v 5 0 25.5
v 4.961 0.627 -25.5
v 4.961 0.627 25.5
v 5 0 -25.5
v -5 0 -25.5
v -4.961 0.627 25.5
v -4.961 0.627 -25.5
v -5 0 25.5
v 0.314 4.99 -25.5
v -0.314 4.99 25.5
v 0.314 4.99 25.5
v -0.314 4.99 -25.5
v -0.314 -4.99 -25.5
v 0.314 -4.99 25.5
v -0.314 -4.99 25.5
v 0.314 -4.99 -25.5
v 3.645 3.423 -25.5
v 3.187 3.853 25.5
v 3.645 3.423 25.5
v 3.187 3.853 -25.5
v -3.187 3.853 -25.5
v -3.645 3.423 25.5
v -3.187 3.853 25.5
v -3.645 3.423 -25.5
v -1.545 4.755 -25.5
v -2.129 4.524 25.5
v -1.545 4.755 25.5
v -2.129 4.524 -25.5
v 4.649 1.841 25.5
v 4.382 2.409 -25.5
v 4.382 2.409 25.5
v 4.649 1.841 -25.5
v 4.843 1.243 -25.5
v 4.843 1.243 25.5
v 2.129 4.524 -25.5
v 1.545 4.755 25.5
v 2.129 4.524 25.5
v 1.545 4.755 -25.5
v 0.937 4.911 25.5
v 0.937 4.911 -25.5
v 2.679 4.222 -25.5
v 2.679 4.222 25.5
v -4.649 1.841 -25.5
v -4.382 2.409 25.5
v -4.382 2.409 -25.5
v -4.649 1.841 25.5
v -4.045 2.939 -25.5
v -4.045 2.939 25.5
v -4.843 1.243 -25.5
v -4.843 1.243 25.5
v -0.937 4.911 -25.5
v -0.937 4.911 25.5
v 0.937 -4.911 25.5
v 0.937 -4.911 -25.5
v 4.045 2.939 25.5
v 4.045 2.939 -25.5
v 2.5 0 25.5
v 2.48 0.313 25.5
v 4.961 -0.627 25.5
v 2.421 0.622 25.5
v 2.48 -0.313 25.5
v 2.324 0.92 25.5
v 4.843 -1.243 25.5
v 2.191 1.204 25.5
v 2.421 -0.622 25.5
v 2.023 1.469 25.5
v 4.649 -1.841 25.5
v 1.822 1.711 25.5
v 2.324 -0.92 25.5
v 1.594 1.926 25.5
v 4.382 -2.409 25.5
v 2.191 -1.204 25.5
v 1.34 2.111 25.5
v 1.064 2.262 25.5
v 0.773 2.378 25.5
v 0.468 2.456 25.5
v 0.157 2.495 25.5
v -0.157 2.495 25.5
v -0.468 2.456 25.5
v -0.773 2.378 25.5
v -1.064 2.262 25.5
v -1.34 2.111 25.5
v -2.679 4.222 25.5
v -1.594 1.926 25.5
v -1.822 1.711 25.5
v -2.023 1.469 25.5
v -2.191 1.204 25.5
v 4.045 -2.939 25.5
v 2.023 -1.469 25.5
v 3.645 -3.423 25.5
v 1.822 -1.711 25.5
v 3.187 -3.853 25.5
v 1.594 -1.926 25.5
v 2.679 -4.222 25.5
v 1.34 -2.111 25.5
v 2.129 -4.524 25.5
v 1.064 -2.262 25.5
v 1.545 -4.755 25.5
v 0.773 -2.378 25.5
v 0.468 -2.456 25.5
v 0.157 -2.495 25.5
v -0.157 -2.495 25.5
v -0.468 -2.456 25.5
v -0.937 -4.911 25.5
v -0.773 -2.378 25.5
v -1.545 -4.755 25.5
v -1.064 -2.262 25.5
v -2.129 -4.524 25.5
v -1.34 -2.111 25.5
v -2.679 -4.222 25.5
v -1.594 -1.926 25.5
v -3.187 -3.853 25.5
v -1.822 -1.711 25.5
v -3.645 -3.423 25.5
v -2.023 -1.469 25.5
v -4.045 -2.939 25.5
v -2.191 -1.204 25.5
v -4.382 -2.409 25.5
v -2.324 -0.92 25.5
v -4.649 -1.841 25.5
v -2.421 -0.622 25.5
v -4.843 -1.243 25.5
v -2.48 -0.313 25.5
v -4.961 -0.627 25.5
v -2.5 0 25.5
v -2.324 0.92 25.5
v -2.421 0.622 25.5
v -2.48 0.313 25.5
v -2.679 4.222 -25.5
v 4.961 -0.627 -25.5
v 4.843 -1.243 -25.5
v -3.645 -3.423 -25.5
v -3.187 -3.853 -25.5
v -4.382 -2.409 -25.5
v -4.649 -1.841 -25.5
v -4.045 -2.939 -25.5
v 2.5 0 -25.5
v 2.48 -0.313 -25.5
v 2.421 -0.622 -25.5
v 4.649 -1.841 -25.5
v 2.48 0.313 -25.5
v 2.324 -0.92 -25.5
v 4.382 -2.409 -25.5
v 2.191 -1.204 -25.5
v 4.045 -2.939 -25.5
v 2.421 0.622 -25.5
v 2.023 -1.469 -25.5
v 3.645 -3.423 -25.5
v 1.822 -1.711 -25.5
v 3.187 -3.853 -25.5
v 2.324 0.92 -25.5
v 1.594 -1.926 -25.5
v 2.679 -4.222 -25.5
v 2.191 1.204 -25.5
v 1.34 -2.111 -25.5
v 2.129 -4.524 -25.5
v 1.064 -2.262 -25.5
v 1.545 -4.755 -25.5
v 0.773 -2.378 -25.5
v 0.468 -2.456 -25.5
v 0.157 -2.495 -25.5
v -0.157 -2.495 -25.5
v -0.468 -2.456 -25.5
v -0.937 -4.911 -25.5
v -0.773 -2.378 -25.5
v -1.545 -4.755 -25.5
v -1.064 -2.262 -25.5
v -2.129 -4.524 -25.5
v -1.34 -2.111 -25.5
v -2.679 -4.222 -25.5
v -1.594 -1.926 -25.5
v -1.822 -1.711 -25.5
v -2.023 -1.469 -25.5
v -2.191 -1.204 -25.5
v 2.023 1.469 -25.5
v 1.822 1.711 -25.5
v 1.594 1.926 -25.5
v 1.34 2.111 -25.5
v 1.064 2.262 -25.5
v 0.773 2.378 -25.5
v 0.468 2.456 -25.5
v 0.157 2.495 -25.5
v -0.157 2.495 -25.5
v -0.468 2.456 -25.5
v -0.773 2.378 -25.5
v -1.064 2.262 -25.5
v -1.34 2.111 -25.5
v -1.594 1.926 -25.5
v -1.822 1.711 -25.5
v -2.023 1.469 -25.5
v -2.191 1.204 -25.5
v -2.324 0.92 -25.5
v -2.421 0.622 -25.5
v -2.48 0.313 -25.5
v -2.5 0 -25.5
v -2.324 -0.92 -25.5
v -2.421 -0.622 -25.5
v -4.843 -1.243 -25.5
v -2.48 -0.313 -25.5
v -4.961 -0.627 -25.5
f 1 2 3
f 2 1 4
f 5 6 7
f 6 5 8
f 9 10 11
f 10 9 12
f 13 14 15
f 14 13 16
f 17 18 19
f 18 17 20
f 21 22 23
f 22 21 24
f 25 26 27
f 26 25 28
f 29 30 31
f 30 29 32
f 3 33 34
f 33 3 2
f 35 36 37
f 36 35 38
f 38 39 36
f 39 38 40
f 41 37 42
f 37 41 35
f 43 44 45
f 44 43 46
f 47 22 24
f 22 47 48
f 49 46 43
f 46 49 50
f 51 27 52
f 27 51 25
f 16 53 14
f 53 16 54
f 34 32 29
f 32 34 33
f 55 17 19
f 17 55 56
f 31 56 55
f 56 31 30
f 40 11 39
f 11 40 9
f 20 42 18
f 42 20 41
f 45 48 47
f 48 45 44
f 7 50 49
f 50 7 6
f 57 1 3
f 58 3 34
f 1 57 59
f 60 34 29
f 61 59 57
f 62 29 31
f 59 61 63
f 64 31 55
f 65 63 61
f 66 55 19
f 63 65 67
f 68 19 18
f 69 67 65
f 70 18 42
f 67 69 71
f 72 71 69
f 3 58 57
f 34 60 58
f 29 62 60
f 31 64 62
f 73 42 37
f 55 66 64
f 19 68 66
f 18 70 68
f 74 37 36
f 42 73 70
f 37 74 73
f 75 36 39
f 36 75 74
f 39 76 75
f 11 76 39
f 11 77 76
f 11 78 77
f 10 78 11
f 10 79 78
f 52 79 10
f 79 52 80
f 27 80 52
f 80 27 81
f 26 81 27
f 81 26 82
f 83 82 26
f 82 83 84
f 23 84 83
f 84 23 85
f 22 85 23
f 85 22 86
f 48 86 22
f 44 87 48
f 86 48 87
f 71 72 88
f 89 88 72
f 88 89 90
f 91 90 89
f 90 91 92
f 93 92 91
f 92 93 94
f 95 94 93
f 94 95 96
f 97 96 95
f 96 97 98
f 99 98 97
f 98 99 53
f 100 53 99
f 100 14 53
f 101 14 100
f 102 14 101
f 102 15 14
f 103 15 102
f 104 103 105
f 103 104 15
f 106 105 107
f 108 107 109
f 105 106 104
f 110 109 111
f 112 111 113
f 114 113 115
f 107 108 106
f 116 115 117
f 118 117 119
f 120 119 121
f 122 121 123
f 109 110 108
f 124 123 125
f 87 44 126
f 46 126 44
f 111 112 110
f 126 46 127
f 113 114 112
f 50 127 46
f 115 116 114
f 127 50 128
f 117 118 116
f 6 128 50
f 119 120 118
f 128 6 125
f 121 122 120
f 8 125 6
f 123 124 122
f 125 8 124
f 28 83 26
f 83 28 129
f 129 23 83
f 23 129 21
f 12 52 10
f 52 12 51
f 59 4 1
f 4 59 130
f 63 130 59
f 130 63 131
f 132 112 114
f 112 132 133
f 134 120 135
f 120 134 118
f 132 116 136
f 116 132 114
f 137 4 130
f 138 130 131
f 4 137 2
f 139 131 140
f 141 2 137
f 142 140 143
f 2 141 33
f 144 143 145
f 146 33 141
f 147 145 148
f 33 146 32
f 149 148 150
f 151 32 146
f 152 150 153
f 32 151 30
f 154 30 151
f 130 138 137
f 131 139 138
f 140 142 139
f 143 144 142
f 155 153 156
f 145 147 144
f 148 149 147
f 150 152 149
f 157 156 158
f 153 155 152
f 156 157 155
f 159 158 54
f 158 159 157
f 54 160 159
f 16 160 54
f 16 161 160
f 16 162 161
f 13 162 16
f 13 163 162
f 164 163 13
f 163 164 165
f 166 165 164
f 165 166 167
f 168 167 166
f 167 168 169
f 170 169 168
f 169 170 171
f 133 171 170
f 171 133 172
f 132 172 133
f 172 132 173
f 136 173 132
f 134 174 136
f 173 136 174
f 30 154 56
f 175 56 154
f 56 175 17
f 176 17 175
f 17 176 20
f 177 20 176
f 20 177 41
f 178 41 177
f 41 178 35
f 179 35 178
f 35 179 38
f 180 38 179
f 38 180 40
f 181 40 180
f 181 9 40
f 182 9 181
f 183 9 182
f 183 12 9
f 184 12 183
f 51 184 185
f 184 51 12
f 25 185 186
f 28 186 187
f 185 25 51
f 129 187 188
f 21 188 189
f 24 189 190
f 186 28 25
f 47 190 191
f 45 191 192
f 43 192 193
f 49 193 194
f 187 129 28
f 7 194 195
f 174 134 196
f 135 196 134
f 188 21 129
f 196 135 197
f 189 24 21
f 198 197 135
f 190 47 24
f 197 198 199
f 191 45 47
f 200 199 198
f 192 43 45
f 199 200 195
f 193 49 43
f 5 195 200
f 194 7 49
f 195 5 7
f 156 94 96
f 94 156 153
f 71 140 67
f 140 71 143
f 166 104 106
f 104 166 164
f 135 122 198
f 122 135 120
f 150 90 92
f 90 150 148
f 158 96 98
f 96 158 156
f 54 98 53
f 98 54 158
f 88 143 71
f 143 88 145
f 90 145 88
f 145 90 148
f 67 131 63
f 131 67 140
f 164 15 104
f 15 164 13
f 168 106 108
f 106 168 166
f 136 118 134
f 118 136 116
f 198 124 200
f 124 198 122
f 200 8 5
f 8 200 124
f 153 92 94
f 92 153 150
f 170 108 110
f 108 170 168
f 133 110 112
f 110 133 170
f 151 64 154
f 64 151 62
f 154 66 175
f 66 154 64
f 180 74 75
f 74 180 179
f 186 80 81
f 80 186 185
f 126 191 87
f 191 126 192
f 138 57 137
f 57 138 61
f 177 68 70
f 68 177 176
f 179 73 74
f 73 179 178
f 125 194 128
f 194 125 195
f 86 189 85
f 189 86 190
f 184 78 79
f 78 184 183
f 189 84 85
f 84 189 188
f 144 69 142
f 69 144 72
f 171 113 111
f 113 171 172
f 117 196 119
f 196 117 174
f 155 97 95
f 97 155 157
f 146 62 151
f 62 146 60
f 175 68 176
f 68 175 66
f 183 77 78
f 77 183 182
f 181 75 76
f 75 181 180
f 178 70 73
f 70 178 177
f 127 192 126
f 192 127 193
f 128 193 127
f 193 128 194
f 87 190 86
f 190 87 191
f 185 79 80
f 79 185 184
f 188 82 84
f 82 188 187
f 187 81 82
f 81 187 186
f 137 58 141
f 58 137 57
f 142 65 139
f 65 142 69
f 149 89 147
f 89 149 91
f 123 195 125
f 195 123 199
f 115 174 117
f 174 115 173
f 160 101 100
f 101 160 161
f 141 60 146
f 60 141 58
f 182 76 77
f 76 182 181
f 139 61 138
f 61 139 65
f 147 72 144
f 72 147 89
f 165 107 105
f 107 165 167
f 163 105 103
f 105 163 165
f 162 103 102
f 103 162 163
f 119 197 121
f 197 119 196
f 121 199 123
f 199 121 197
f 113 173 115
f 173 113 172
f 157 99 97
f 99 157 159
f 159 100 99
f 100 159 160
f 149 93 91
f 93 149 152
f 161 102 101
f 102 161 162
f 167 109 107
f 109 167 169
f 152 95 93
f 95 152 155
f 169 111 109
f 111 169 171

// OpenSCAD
$fn = 50;


difference() {
	union() {
		translate(v = [0, 0, -25.5000000000]) {
			cylinder(h = 51, r = 5.0000000000);
		}
	}
	union() {
		translate(v = [0, 0, -100.0000000000]) {
			cylinder(h = 200, r = 2.5000000000);
		}
	}
}
